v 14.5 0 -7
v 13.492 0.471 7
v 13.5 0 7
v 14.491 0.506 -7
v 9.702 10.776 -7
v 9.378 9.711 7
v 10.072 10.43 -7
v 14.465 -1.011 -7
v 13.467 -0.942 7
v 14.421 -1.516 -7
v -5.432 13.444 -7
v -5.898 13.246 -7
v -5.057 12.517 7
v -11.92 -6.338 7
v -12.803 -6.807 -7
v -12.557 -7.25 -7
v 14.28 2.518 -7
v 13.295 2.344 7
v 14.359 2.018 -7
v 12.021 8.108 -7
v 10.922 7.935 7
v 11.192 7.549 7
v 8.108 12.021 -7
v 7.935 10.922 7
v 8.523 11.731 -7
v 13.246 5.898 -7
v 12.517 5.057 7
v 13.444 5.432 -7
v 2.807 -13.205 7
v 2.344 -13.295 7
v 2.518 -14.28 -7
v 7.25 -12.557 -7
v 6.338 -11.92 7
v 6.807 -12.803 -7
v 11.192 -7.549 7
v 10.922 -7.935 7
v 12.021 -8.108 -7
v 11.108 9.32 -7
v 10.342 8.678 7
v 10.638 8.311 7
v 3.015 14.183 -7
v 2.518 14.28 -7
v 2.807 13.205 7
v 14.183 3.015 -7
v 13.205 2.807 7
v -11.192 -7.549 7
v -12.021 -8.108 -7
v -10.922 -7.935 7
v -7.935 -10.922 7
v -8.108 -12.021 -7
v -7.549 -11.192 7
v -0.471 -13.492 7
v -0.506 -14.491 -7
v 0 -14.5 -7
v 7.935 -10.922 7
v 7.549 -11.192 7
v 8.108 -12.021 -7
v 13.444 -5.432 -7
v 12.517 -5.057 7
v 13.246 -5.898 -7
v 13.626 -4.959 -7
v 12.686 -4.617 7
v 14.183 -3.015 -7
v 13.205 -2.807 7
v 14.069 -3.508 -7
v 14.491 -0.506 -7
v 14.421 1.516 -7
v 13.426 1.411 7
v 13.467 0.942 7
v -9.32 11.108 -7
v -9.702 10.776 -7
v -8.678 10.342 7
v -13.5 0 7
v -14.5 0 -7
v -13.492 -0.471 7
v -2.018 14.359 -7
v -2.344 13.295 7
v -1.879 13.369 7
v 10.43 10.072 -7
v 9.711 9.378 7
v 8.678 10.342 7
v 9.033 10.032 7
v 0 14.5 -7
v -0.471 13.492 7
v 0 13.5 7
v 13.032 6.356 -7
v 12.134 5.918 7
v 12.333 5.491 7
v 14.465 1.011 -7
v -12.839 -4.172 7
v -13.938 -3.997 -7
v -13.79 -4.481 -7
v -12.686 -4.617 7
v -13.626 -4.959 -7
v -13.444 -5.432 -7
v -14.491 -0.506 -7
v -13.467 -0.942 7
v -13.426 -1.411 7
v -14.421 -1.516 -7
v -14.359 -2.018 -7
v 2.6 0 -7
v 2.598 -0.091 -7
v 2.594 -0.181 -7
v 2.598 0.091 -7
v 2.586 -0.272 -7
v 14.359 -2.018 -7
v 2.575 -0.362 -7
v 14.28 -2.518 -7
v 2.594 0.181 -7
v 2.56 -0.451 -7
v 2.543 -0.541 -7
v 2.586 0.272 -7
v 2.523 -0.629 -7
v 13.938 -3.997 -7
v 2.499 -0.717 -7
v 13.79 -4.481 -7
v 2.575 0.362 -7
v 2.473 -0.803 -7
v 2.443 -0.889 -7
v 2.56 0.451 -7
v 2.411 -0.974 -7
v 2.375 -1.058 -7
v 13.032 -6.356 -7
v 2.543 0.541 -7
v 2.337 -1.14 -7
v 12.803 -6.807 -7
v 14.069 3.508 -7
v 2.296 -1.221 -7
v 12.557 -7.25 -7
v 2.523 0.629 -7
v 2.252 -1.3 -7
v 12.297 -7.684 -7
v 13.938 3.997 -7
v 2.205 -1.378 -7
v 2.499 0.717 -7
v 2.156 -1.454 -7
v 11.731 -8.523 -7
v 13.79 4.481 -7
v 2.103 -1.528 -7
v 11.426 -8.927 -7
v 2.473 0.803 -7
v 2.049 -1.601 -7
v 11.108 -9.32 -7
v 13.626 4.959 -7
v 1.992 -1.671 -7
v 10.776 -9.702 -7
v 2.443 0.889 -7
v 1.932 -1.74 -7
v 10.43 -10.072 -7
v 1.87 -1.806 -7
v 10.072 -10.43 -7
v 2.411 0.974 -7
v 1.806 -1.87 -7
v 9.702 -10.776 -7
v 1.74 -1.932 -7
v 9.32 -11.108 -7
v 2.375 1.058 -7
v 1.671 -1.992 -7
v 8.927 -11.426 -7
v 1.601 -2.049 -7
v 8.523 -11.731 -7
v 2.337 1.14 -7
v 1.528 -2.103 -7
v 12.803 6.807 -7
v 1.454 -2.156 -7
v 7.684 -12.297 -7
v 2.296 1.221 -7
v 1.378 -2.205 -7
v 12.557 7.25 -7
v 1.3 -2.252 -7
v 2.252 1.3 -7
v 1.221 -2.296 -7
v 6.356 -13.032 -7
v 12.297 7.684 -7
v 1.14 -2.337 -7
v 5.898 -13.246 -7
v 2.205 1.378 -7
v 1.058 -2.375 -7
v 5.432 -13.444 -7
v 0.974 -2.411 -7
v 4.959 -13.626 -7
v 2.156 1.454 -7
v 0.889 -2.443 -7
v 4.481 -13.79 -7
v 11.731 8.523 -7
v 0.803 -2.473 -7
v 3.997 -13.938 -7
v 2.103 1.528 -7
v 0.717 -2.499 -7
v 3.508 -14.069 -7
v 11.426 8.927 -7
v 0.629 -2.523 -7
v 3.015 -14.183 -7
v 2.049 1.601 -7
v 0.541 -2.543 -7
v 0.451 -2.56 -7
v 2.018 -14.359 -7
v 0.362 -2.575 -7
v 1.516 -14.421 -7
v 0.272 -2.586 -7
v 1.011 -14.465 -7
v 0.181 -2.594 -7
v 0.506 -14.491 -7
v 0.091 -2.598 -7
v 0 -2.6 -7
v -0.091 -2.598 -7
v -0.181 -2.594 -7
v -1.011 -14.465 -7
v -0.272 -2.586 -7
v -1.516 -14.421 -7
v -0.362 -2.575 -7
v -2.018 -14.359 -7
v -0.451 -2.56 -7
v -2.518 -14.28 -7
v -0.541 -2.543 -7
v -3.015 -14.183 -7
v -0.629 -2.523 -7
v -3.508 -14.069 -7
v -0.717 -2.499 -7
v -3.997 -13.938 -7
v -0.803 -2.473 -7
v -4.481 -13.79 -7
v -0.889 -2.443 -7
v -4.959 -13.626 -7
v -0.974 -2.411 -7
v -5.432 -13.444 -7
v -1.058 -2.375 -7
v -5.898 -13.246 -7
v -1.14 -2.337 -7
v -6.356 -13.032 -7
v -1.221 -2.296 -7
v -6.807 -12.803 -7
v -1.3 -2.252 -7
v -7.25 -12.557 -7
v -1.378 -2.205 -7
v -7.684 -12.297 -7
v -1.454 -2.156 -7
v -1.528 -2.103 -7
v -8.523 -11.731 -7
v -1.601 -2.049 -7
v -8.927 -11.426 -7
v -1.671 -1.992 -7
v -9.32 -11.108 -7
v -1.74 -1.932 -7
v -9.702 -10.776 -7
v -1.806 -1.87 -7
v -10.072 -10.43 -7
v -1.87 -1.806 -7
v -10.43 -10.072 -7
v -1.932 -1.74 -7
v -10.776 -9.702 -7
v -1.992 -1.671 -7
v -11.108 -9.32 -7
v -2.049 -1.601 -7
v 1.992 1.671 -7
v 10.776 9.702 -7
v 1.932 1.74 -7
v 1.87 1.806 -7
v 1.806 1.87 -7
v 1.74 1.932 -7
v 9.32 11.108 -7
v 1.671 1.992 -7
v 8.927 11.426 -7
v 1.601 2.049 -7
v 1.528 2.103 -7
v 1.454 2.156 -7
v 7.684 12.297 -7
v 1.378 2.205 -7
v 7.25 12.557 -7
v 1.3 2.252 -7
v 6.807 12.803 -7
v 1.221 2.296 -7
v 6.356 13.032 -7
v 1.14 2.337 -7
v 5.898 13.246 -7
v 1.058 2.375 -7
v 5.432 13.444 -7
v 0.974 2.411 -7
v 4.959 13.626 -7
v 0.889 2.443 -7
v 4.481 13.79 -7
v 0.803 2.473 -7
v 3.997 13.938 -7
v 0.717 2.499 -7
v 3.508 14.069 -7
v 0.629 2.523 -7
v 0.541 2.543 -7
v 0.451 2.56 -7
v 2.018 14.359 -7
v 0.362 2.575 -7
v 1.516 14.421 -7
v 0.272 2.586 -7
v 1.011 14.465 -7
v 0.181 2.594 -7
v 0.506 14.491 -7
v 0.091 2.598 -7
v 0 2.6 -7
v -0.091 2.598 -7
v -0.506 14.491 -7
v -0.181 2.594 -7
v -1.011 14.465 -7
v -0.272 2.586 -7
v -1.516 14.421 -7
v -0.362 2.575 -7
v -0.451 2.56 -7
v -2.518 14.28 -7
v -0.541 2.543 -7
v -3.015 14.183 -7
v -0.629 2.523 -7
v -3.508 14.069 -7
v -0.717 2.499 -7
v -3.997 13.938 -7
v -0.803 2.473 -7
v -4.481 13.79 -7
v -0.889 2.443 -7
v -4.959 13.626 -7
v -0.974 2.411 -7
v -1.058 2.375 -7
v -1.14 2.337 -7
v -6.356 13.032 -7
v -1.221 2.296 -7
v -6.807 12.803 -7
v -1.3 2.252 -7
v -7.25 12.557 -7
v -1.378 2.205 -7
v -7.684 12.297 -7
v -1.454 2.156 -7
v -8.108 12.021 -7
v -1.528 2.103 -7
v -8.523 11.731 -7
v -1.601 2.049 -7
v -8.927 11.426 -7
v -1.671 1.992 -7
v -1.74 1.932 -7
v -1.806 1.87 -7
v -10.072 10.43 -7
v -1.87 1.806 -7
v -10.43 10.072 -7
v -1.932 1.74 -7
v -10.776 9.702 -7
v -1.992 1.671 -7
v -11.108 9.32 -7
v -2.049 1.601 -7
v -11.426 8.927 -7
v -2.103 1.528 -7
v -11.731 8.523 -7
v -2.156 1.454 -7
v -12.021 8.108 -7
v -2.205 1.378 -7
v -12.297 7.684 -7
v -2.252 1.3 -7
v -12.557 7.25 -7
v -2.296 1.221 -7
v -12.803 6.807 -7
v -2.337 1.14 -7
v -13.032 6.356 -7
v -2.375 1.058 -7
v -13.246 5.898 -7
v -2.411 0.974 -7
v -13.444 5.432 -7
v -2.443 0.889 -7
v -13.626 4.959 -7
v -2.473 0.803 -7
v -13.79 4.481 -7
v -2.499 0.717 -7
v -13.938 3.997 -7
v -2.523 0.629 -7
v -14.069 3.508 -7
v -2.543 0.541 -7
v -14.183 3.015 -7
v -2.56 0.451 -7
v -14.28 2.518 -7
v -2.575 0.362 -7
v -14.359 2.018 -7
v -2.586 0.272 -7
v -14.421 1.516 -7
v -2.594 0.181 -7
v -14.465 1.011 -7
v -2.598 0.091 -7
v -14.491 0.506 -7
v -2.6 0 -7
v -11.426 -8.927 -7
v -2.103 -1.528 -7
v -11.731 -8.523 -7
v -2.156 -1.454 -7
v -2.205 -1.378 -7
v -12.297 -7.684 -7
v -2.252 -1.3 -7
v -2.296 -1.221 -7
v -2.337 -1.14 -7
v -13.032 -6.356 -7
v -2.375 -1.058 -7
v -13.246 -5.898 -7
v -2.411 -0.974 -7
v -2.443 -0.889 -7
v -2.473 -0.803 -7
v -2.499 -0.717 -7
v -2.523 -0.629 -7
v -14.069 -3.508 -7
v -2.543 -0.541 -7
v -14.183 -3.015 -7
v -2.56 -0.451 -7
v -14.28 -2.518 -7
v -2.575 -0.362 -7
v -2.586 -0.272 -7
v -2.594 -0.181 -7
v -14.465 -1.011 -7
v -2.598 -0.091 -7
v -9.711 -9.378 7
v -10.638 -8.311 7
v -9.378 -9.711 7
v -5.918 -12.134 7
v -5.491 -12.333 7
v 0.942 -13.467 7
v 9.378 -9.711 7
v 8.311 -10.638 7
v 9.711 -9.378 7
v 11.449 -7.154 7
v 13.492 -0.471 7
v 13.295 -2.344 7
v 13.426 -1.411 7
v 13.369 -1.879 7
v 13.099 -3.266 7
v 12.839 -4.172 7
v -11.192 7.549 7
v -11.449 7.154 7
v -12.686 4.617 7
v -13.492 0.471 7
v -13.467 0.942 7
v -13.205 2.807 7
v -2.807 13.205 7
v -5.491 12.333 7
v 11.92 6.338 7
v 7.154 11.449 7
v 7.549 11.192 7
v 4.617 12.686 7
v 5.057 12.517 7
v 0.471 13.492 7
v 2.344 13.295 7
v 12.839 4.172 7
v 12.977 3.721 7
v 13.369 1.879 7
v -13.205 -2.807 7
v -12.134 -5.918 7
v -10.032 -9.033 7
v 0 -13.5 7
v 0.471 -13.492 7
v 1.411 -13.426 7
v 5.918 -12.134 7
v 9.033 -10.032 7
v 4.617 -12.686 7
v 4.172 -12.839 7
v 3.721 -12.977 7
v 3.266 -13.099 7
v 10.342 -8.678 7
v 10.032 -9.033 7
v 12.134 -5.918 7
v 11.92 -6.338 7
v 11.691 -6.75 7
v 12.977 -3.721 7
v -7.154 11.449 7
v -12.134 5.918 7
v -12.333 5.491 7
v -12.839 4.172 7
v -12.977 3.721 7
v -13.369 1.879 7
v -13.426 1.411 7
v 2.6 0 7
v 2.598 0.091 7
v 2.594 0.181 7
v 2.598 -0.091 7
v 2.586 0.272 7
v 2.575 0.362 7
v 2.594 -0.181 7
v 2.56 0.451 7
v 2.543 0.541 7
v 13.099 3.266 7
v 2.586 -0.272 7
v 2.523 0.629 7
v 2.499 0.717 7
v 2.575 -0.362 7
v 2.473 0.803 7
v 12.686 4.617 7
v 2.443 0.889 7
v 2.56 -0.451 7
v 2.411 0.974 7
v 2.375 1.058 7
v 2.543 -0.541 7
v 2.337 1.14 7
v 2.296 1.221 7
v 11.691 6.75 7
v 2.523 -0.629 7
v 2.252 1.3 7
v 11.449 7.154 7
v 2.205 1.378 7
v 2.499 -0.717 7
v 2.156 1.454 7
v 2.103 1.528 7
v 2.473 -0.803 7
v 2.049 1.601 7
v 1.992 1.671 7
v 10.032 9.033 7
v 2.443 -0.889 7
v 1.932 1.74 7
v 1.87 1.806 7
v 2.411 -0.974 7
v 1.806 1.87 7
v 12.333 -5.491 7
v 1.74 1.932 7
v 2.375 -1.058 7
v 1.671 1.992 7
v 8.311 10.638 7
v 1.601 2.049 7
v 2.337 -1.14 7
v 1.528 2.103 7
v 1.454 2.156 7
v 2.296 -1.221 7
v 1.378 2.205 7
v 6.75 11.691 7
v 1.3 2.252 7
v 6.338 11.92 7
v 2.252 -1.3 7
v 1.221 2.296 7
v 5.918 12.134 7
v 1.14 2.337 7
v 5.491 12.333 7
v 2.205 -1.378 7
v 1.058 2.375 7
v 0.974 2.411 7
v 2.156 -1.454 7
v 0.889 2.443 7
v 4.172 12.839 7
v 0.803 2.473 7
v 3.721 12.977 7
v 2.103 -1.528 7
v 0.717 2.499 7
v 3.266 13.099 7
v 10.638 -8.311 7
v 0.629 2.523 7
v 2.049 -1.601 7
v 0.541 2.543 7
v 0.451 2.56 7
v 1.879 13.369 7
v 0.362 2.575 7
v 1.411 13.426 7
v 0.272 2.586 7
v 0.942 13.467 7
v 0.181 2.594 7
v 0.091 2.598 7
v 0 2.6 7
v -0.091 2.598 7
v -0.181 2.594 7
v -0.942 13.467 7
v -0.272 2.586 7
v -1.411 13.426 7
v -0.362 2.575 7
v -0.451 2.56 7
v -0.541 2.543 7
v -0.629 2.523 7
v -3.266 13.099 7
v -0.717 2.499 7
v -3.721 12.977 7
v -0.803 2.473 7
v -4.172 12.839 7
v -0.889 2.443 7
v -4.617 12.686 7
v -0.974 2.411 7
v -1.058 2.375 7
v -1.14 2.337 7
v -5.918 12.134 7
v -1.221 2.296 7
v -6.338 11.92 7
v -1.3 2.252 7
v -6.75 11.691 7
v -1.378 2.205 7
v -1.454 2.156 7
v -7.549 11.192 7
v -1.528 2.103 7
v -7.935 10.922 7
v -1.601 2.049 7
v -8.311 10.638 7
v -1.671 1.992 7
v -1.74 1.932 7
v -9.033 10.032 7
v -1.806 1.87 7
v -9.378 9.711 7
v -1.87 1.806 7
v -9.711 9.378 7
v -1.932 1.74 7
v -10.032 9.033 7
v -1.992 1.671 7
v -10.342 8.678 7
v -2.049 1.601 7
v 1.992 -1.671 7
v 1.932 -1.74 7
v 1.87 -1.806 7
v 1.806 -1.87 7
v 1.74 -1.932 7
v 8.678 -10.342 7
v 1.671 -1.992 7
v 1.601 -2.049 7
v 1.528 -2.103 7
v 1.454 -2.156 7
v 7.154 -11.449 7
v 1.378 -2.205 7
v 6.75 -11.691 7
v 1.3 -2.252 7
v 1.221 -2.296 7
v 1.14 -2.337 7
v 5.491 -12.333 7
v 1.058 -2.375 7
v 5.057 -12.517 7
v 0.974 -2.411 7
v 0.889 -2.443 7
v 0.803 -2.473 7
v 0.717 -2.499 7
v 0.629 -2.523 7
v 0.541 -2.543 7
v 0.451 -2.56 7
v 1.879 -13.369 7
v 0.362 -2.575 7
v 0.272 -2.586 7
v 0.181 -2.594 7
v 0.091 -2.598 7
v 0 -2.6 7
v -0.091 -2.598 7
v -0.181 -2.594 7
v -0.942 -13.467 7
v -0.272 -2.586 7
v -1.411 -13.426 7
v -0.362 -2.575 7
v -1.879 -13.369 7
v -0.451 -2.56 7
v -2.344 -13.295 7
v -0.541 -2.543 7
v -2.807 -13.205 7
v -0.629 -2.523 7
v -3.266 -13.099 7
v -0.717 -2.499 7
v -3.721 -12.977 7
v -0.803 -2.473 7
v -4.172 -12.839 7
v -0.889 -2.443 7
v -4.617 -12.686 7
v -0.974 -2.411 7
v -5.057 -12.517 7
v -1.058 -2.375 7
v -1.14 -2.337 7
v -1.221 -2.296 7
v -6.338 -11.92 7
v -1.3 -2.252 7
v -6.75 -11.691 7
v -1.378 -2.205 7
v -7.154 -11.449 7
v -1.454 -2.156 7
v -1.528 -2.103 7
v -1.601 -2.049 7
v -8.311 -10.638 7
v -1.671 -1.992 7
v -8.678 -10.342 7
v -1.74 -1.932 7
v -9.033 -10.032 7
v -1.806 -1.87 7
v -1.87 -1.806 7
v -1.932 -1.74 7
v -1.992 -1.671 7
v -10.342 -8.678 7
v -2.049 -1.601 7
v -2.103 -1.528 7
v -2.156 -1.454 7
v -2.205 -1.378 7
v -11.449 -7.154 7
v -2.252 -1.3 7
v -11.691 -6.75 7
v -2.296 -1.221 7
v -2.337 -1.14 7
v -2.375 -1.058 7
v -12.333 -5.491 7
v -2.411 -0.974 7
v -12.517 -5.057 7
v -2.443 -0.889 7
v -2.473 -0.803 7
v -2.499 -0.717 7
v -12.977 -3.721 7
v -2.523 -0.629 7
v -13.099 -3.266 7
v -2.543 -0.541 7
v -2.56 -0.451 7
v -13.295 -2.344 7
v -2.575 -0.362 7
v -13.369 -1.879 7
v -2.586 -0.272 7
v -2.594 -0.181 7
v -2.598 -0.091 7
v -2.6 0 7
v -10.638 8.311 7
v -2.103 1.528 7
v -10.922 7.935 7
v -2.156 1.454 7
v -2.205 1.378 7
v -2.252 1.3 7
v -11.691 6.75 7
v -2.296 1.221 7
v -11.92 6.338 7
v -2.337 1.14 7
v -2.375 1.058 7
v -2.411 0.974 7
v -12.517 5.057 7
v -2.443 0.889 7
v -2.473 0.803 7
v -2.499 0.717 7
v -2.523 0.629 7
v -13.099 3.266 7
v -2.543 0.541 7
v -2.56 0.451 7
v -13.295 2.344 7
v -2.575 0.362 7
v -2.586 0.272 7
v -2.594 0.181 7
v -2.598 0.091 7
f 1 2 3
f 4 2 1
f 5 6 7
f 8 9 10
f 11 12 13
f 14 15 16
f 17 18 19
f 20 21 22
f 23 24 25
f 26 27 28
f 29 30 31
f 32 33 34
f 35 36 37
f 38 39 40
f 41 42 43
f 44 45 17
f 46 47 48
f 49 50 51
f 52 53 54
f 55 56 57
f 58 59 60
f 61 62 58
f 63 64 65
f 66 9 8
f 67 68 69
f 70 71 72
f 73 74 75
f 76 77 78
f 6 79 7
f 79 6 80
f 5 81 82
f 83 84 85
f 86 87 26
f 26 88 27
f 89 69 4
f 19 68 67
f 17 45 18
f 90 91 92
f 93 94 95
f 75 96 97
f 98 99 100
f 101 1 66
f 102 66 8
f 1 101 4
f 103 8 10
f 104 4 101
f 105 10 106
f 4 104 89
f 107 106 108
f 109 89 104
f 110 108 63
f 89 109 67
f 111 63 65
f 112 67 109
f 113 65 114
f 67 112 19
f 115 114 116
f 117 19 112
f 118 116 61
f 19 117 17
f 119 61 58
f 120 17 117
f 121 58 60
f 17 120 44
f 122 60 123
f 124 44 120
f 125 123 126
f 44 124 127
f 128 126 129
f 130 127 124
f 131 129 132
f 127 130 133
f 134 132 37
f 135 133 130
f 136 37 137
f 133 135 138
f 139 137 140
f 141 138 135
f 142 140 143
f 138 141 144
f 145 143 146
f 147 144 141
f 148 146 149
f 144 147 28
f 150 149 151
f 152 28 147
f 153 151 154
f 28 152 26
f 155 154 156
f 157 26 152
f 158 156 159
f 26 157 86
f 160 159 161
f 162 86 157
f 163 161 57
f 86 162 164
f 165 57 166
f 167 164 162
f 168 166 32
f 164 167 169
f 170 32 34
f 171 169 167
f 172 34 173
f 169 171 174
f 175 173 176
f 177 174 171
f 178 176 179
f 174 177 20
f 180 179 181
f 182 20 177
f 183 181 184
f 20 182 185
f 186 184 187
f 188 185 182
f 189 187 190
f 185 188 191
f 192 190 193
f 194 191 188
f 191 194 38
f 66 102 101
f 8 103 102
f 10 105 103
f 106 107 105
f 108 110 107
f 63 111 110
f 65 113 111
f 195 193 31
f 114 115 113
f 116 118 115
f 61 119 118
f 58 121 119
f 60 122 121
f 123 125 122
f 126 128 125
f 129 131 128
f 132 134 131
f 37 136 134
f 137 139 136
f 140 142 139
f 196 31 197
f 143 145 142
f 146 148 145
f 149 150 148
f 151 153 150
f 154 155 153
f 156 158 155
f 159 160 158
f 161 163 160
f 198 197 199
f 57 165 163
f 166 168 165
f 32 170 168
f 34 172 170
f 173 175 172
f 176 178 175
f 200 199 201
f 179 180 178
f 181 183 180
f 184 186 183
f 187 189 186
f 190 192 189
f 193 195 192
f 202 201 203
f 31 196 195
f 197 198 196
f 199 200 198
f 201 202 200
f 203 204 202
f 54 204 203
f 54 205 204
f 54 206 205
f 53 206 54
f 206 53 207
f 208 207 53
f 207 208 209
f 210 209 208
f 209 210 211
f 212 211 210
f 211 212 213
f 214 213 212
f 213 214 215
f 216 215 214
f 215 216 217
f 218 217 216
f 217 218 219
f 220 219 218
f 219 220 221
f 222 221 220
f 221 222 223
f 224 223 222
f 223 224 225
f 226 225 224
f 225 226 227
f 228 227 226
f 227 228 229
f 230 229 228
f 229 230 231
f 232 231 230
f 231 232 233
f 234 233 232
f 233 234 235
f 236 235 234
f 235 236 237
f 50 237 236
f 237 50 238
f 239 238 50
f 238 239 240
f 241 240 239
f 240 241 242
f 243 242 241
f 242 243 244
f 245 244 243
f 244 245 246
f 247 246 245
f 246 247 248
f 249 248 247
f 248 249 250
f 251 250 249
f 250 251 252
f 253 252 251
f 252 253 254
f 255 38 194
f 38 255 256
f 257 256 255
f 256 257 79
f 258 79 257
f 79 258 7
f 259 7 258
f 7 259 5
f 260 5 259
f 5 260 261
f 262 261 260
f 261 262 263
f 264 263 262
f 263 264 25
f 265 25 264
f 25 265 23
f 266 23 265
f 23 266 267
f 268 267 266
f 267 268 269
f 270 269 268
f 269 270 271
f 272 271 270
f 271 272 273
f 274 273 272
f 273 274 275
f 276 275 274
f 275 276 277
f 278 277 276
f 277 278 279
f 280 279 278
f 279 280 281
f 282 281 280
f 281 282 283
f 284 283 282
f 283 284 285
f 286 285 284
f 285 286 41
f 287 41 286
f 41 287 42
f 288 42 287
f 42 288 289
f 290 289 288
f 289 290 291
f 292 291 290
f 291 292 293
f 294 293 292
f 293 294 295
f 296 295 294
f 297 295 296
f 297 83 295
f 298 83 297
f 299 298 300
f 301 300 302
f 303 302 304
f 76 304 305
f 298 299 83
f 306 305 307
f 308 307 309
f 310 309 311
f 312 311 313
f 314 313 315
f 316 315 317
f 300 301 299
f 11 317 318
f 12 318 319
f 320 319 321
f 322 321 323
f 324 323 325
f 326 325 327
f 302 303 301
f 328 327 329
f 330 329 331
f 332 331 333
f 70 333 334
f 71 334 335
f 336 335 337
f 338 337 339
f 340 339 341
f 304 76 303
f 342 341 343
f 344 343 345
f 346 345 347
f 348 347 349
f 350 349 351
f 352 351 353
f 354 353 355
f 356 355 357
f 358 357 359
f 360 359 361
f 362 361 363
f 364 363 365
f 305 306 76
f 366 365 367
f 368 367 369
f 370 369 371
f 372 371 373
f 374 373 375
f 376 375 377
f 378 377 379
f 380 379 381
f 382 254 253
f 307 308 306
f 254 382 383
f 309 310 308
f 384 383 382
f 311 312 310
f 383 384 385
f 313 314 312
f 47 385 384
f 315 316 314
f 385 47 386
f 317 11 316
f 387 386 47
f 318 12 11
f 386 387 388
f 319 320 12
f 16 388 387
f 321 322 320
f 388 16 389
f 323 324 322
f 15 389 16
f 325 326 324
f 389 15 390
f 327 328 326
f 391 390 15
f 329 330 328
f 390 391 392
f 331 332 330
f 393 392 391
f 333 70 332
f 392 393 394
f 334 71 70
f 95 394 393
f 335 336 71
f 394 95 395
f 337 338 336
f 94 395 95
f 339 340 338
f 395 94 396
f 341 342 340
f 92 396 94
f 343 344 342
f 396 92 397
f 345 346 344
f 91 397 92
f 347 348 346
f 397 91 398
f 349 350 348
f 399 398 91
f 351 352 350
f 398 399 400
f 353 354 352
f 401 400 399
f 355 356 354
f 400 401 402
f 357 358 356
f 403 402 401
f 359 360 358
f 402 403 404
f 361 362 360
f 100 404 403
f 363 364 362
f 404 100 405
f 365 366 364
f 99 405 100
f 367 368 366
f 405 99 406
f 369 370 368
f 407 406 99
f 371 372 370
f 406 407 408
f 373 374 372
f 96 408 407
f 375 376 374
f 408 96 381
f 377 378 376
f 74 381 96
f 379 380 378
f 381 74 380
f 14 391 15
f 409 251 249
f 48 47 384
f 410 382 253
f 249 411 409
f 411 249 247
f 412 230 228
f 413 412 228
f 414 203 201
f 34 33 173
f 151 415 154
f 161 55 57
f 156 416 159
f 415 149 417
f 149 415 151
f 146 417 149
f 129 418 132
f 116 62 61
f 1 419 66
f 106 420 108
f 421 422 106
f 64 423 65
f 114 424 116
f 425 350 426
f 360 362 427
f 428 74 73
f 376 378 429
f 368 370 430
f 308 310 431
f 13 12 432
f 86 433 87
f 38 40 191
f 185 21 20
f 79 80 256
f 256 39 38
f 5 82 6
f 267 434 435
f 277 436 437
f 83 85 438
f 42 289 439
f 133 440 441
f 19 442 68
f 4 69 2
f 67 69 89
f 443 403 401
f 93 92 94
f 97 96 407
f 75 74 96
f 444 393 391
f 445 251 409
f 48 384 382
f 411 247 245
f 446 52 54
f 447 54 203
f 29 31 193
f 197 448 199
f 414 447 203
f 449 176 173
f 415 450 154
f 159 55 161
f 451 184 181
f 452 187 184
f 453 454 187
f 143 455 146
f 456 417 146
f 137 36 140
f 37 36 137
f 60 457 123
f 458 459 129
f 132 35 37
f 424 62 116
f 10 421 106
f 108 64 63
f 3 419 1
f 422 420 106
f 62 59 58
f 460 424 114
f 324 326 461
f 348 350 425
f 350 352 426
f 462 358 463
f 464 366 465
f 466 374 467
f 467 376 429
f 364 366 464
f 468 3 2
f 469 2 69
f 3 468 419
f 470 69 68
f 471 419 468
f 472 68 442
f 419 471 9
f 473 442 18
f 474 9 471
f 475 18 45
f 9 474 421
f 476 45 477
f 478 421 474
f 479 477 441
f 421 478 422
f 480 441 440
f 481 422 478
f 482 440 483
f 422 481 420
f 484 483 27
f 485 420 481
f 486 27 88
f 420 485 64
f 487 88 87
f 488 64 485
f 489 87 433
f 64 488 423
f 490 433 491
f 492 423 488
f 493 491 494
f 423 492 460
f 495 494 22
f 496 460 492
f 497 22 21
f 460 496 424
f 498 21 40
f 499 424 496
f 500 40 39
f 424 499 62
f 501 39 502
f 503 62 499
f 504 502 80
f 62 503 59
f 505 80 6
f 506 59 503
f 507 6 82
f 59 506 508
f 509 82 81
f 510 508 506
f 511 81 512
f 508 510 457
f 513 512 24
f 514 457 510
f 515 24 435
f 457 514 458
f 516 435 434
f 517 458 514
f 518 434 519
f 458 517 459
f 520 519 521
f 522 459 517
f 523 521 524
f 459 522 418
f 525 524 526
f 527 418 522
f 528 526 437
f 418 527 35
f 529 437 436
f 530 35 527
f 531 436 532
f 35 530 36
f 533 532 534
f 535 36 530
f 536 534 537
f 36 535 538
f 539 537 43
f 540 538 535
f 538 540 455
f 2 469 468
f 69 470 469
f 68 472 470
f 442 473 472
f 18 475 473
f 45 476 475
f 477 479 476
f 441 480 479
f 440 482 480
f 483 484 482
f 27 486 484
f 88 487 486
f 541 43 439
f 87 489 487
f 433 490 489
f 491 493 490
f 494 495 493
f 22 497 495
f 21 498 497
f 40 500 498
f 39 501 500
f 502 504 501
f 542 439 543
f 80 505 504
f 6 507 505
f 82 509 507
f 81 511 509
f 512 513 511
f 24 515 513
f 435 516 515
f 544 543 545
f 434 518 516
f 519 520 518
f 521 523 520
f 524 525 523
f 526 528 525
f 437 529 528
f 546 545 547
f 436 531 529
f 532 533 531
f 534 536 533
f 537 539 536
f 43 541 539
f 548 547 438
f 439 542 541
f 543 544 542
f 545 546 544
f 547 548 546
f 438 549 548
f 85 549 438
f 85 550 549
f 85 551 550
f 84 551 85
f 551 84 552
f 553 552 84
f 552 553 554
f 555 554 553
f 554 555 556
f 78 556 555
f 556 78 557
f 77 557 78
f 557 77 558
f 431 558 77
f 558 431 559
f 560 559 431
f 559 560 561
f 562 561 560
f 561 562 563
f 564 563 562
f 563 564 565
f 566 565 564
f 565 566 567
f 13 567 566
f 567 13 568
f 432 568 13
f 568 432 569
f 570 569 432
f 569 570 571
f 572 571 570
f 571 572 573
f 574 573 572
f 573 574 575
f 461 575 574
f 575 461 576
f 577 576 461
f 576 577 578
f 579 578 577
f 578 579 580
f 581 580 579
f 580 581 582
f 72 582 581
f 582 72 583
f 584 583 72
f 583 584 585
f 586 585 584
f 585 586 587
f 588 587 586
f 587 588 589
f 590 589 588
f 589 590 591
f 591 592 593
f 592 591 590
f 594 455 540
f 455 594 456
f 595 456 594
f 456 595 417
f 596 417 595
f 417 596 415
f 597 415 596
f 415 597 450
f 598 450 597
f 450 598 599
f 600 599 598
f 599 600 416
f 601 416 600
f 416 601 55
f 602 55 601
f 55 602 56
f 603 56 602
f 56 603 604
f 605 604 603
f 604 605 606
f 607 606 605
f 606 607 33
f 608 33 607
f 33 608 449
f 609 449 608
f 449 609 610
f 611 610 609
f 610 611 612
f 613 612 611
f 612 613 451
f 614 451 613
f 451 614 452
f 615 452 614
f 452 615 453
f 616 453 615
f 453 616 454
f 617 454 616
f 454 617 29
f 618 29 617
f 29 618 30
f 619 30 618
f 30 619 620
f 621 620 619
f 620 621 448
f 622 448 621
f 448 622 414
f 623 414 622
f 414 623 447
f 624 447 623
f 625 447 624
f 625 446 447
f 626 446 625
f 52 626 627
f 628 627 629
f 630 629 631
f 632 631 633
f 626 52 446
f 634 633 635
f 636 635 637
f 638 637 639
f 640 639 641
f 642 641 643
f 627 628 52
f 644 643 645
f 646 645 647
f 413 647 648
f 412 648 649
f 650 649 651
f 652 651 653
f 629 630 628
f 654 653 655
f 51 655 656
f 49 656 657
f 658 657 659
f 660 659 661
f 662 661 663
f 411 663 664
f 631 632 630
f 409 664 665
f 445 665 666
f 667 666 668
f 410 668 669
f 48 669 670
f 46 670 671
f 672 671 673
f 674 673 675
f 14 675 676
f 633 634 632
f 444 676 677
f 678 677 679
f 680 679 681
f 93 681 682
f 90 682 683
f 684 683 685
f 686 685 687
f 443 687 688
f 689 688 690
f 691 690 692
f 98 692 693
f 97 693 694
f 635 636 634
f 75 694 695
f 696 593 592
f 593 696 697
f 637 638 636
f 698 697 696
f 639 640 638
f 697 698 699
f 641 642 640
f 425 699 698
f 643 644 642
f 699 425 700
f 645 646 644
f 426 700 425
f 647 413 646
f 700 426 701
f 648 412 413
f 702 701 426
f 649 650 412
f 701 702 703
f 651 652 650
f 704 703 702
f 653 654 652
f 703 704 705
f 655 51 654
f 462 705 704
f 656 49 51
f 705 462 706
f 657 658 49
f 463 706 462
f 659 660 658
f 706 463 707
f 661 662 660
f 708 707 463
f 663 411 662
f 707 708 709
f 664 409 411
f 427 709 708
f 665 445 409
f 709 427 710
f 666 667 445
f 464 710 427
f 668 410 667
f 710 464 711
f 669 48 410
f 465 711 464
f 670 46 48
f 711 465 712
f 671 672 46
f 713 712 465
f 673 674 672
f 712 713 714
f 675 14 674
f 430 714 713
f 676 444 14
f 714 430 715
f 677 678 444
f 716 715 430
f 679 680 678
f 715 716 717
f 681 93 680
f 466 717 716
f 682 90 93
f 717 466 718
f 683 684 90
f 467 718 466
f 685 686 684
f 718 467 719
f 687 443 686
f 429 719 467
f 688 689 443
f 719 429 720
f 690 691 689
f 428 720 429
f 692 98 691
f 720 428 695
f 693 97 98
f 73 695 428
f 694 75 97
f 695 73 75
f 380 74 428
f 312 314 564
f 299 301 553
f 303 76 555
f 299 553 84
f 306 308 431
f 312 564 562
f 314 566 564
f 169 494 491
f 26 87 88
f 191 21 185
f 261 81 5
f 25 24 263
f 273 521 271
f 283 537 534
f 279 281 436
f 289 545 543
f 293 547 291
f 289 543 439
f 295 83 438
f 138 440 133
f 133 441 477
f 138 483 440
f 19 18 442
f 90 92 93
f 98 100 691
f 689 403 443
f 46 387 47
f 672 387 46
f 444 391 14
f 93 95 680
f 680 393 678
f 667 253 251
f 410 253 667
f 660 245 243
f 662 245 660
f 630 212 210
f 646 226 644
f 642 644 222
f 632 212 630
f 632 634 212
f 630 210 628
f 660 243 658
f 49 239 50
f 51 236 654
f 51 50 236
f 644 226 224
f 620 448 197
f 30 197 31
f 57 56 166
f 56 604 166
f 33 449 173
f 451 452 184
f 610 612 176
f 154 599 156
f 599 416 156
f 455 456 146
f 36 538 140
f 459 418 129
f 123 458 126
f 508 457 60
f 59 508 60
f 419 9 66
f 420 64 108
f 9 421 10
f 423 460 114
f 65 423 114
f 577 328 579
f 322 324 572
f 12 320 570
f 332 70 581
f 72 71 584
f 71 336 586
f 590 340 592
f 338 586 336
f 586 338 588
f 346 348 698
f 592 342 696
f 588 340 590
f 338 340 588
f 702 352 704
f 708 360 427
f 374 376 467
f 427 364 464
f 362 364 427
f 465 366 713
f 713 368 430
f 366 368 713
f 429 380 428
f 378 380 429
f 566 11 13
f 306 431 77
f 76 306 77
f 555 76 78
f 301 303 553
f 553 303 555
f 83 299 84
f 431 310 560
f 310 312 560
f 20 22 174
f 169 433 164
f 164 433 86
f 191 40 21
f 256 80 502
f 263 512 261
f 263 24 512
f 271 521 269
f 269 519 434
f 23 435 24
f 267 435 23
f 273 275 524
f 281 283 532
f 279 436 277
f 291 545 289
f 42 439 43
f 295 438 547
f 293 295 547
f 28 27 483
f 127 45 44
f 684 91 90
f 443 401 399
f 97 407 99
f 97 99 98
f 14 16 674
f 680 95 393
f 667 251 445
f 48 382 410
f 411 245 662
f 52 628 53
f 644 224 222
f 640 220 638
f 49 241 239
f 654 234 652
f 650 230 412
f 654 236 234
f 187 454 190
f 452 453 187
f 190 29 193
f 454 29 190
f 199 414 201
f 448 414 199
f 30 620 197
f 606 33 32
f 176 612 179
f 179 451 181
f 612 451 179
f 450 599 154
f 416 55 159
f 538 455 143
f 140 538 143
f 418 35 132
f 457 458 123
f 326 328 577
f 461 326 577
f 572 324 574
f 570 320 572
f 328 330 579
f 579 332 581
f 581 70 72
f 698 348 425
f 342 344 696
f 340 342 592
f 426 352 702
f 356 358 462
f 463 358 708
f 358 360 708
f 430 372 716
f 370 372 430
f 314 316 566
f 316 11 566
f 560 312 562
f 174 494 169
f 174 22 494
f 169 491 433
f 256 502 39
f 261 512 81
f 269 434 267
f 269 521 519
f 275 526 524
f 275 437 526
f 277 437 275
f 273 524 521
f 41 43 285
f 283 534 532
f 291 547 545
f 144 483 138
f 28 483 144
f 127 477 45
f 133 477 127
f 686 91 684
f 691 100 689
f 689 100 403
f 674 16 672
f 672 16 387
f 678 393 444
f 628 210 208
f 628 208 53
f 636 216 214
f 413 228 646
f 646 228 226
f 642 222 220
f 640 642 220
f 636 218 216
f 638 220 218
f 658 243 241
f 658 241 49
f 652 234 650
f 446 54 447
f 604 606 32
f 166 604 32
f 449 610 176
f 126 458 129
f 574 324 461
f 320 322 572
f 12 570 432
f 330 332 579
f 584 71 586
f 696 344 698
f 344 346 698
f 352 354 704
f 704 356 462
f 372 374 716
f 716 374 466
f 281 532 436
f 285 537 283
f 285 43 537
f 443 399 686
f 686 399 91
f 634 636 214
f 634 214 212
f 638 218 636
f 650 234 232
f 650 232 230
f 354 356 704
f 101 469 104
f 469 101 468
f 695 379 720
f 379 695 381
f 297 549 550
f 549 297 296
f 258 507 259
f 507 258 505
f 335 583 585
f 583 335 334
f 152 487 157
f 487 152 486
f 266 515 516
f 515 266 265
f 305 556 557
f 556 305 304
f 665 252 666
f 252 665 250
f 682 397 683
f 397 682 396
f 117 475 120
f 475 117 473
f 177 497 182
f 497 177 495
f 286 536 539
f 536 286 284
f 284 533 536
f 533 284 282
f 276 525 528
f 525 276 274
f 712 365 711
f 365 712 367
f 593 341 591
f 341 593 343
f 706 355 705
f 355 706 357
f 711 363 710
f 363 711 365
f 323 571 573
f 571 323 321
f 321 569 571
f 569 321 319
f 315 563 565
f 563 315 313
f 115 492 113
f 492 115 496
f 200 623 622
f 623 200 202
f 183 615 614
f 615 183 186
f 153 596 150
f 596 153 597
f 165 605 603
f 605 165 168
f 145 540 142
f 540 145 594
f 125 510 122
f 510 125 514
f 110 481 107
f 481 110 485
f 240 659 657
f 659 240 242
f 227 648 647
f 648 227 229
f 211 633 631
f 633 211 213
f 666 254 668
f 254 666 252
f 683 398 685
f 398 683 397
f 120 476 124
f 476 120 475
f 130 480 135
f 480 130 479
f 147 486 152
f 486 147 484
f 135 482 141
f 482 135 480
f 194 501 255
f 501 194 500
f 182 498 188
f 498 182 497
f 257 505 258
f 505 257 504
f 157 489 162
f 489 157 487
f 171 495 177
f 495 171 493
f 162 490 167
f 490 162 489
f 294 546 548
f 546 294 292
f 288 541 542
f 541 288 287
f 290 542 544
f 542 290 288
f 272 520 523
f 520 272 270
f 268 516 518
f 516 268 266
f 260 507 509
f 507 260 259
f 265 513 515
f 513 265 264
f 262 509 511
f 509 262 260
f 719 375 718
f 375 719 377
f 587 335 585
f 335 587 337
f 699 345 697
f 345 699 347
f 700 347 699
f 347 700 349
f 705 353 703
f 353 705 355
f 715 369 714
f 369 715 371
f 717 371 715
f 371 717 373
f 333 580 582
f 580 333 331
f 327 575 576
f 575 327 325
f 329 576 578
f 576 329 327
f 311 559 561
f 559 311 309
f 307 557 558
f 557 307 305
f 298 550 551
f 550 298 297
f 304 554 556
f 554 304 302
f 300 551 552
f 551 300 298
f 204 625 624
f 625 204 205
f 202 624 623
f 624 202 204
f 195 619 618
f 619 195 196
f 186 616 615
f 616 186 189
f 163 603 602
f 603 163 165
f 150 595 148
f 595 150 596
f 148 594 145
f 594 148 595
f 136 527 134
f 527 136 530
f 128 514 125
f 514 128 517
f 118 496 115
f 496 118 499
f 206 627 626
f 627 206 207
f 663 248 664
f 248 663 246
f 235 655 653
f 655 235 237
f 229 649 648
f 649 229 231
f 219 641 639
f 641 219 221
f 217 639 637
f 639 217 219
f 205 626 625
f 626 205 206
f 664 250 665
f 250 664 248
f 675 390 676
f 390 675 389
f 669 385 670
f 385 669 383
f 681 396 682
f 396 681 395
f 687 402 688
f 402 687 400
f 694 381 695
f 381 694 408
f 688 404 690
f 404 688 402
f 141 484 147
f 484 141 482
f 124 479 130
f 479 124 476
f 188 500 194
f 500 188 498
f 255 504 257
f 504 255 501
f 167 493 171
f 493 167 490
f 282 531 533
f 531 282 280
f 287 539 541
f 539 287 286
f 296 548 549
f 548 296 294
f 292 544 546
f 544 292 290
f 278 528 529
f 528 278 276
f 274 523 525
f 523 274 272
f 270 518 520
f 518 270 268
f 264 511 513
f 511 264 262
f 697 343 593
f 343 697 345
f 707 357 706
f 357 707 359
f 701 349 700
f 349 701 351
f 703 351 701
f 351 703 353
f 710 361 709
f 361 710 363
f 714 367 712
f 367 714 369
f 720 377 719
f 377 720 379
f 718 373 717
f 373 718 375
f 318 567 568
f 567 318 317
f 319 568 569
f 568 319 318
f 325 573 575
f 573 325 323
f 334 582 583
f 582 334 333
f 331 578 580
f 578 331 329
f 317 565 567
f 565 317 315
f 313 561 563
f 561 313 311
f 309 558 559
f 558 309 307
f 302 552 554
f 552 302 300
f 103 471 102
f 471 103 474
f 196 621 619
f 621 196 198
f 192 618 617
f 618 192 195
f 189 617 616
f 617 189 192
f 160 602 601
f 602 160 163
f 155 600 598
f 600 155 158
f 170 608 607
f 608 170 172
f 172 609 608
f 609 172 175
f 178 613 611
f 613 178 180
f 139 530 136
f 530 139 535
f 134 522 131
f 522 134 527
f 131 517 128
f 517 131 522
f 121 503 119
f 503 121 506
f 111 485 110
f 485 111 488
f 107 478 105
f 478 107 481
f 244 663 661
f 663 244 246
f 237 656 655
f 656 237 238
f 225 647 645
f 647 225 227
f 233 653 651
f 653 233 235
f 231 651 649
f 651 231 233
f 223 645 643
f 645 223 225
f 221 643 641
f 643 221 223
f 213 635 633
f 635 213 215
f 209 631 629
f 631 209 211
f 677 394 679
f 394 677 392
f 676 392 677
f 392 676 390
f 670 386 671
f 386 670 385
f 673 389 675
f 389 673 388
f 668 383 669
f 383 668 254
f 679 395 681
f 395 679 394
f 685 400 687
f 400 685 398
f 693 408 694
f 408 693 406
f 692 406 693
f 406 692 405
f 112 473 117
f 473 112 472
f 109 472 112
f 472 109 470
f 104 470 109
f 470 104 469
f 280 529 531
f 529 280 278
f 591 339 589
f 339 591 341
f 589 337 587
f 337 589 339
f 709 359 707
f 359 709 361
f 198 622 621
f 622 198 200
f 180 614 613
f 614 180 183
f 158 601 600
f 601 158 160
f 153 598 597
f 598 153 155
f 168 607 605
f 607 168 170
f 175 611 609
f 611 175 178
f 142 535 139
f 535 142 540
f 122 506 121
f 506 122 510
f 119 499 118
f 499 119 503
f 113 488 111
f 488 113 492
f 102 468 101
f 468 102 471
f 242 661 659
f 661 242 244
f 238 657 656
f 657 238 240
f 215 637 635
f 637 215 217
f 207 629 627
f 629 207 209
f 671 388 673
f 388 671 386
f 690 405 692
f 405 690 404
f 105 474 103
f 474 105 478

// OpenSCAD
//cube([120,120,3], center = true);
//translate([-45,-45,0])cylinder(h = 3, r=15, $fn = 180, center = true);
//rotate_extrude(convexity = 10, $fn = A) translate([20+1.5, 0, 0])circle(d = 3, $fn = B);





difference(){
cylinder(h = 14, d1=29, d2=27, $fn = 180, center = true);

cylinder(h = 15, d=5.2, $fn = 180, center = true);

}
 
